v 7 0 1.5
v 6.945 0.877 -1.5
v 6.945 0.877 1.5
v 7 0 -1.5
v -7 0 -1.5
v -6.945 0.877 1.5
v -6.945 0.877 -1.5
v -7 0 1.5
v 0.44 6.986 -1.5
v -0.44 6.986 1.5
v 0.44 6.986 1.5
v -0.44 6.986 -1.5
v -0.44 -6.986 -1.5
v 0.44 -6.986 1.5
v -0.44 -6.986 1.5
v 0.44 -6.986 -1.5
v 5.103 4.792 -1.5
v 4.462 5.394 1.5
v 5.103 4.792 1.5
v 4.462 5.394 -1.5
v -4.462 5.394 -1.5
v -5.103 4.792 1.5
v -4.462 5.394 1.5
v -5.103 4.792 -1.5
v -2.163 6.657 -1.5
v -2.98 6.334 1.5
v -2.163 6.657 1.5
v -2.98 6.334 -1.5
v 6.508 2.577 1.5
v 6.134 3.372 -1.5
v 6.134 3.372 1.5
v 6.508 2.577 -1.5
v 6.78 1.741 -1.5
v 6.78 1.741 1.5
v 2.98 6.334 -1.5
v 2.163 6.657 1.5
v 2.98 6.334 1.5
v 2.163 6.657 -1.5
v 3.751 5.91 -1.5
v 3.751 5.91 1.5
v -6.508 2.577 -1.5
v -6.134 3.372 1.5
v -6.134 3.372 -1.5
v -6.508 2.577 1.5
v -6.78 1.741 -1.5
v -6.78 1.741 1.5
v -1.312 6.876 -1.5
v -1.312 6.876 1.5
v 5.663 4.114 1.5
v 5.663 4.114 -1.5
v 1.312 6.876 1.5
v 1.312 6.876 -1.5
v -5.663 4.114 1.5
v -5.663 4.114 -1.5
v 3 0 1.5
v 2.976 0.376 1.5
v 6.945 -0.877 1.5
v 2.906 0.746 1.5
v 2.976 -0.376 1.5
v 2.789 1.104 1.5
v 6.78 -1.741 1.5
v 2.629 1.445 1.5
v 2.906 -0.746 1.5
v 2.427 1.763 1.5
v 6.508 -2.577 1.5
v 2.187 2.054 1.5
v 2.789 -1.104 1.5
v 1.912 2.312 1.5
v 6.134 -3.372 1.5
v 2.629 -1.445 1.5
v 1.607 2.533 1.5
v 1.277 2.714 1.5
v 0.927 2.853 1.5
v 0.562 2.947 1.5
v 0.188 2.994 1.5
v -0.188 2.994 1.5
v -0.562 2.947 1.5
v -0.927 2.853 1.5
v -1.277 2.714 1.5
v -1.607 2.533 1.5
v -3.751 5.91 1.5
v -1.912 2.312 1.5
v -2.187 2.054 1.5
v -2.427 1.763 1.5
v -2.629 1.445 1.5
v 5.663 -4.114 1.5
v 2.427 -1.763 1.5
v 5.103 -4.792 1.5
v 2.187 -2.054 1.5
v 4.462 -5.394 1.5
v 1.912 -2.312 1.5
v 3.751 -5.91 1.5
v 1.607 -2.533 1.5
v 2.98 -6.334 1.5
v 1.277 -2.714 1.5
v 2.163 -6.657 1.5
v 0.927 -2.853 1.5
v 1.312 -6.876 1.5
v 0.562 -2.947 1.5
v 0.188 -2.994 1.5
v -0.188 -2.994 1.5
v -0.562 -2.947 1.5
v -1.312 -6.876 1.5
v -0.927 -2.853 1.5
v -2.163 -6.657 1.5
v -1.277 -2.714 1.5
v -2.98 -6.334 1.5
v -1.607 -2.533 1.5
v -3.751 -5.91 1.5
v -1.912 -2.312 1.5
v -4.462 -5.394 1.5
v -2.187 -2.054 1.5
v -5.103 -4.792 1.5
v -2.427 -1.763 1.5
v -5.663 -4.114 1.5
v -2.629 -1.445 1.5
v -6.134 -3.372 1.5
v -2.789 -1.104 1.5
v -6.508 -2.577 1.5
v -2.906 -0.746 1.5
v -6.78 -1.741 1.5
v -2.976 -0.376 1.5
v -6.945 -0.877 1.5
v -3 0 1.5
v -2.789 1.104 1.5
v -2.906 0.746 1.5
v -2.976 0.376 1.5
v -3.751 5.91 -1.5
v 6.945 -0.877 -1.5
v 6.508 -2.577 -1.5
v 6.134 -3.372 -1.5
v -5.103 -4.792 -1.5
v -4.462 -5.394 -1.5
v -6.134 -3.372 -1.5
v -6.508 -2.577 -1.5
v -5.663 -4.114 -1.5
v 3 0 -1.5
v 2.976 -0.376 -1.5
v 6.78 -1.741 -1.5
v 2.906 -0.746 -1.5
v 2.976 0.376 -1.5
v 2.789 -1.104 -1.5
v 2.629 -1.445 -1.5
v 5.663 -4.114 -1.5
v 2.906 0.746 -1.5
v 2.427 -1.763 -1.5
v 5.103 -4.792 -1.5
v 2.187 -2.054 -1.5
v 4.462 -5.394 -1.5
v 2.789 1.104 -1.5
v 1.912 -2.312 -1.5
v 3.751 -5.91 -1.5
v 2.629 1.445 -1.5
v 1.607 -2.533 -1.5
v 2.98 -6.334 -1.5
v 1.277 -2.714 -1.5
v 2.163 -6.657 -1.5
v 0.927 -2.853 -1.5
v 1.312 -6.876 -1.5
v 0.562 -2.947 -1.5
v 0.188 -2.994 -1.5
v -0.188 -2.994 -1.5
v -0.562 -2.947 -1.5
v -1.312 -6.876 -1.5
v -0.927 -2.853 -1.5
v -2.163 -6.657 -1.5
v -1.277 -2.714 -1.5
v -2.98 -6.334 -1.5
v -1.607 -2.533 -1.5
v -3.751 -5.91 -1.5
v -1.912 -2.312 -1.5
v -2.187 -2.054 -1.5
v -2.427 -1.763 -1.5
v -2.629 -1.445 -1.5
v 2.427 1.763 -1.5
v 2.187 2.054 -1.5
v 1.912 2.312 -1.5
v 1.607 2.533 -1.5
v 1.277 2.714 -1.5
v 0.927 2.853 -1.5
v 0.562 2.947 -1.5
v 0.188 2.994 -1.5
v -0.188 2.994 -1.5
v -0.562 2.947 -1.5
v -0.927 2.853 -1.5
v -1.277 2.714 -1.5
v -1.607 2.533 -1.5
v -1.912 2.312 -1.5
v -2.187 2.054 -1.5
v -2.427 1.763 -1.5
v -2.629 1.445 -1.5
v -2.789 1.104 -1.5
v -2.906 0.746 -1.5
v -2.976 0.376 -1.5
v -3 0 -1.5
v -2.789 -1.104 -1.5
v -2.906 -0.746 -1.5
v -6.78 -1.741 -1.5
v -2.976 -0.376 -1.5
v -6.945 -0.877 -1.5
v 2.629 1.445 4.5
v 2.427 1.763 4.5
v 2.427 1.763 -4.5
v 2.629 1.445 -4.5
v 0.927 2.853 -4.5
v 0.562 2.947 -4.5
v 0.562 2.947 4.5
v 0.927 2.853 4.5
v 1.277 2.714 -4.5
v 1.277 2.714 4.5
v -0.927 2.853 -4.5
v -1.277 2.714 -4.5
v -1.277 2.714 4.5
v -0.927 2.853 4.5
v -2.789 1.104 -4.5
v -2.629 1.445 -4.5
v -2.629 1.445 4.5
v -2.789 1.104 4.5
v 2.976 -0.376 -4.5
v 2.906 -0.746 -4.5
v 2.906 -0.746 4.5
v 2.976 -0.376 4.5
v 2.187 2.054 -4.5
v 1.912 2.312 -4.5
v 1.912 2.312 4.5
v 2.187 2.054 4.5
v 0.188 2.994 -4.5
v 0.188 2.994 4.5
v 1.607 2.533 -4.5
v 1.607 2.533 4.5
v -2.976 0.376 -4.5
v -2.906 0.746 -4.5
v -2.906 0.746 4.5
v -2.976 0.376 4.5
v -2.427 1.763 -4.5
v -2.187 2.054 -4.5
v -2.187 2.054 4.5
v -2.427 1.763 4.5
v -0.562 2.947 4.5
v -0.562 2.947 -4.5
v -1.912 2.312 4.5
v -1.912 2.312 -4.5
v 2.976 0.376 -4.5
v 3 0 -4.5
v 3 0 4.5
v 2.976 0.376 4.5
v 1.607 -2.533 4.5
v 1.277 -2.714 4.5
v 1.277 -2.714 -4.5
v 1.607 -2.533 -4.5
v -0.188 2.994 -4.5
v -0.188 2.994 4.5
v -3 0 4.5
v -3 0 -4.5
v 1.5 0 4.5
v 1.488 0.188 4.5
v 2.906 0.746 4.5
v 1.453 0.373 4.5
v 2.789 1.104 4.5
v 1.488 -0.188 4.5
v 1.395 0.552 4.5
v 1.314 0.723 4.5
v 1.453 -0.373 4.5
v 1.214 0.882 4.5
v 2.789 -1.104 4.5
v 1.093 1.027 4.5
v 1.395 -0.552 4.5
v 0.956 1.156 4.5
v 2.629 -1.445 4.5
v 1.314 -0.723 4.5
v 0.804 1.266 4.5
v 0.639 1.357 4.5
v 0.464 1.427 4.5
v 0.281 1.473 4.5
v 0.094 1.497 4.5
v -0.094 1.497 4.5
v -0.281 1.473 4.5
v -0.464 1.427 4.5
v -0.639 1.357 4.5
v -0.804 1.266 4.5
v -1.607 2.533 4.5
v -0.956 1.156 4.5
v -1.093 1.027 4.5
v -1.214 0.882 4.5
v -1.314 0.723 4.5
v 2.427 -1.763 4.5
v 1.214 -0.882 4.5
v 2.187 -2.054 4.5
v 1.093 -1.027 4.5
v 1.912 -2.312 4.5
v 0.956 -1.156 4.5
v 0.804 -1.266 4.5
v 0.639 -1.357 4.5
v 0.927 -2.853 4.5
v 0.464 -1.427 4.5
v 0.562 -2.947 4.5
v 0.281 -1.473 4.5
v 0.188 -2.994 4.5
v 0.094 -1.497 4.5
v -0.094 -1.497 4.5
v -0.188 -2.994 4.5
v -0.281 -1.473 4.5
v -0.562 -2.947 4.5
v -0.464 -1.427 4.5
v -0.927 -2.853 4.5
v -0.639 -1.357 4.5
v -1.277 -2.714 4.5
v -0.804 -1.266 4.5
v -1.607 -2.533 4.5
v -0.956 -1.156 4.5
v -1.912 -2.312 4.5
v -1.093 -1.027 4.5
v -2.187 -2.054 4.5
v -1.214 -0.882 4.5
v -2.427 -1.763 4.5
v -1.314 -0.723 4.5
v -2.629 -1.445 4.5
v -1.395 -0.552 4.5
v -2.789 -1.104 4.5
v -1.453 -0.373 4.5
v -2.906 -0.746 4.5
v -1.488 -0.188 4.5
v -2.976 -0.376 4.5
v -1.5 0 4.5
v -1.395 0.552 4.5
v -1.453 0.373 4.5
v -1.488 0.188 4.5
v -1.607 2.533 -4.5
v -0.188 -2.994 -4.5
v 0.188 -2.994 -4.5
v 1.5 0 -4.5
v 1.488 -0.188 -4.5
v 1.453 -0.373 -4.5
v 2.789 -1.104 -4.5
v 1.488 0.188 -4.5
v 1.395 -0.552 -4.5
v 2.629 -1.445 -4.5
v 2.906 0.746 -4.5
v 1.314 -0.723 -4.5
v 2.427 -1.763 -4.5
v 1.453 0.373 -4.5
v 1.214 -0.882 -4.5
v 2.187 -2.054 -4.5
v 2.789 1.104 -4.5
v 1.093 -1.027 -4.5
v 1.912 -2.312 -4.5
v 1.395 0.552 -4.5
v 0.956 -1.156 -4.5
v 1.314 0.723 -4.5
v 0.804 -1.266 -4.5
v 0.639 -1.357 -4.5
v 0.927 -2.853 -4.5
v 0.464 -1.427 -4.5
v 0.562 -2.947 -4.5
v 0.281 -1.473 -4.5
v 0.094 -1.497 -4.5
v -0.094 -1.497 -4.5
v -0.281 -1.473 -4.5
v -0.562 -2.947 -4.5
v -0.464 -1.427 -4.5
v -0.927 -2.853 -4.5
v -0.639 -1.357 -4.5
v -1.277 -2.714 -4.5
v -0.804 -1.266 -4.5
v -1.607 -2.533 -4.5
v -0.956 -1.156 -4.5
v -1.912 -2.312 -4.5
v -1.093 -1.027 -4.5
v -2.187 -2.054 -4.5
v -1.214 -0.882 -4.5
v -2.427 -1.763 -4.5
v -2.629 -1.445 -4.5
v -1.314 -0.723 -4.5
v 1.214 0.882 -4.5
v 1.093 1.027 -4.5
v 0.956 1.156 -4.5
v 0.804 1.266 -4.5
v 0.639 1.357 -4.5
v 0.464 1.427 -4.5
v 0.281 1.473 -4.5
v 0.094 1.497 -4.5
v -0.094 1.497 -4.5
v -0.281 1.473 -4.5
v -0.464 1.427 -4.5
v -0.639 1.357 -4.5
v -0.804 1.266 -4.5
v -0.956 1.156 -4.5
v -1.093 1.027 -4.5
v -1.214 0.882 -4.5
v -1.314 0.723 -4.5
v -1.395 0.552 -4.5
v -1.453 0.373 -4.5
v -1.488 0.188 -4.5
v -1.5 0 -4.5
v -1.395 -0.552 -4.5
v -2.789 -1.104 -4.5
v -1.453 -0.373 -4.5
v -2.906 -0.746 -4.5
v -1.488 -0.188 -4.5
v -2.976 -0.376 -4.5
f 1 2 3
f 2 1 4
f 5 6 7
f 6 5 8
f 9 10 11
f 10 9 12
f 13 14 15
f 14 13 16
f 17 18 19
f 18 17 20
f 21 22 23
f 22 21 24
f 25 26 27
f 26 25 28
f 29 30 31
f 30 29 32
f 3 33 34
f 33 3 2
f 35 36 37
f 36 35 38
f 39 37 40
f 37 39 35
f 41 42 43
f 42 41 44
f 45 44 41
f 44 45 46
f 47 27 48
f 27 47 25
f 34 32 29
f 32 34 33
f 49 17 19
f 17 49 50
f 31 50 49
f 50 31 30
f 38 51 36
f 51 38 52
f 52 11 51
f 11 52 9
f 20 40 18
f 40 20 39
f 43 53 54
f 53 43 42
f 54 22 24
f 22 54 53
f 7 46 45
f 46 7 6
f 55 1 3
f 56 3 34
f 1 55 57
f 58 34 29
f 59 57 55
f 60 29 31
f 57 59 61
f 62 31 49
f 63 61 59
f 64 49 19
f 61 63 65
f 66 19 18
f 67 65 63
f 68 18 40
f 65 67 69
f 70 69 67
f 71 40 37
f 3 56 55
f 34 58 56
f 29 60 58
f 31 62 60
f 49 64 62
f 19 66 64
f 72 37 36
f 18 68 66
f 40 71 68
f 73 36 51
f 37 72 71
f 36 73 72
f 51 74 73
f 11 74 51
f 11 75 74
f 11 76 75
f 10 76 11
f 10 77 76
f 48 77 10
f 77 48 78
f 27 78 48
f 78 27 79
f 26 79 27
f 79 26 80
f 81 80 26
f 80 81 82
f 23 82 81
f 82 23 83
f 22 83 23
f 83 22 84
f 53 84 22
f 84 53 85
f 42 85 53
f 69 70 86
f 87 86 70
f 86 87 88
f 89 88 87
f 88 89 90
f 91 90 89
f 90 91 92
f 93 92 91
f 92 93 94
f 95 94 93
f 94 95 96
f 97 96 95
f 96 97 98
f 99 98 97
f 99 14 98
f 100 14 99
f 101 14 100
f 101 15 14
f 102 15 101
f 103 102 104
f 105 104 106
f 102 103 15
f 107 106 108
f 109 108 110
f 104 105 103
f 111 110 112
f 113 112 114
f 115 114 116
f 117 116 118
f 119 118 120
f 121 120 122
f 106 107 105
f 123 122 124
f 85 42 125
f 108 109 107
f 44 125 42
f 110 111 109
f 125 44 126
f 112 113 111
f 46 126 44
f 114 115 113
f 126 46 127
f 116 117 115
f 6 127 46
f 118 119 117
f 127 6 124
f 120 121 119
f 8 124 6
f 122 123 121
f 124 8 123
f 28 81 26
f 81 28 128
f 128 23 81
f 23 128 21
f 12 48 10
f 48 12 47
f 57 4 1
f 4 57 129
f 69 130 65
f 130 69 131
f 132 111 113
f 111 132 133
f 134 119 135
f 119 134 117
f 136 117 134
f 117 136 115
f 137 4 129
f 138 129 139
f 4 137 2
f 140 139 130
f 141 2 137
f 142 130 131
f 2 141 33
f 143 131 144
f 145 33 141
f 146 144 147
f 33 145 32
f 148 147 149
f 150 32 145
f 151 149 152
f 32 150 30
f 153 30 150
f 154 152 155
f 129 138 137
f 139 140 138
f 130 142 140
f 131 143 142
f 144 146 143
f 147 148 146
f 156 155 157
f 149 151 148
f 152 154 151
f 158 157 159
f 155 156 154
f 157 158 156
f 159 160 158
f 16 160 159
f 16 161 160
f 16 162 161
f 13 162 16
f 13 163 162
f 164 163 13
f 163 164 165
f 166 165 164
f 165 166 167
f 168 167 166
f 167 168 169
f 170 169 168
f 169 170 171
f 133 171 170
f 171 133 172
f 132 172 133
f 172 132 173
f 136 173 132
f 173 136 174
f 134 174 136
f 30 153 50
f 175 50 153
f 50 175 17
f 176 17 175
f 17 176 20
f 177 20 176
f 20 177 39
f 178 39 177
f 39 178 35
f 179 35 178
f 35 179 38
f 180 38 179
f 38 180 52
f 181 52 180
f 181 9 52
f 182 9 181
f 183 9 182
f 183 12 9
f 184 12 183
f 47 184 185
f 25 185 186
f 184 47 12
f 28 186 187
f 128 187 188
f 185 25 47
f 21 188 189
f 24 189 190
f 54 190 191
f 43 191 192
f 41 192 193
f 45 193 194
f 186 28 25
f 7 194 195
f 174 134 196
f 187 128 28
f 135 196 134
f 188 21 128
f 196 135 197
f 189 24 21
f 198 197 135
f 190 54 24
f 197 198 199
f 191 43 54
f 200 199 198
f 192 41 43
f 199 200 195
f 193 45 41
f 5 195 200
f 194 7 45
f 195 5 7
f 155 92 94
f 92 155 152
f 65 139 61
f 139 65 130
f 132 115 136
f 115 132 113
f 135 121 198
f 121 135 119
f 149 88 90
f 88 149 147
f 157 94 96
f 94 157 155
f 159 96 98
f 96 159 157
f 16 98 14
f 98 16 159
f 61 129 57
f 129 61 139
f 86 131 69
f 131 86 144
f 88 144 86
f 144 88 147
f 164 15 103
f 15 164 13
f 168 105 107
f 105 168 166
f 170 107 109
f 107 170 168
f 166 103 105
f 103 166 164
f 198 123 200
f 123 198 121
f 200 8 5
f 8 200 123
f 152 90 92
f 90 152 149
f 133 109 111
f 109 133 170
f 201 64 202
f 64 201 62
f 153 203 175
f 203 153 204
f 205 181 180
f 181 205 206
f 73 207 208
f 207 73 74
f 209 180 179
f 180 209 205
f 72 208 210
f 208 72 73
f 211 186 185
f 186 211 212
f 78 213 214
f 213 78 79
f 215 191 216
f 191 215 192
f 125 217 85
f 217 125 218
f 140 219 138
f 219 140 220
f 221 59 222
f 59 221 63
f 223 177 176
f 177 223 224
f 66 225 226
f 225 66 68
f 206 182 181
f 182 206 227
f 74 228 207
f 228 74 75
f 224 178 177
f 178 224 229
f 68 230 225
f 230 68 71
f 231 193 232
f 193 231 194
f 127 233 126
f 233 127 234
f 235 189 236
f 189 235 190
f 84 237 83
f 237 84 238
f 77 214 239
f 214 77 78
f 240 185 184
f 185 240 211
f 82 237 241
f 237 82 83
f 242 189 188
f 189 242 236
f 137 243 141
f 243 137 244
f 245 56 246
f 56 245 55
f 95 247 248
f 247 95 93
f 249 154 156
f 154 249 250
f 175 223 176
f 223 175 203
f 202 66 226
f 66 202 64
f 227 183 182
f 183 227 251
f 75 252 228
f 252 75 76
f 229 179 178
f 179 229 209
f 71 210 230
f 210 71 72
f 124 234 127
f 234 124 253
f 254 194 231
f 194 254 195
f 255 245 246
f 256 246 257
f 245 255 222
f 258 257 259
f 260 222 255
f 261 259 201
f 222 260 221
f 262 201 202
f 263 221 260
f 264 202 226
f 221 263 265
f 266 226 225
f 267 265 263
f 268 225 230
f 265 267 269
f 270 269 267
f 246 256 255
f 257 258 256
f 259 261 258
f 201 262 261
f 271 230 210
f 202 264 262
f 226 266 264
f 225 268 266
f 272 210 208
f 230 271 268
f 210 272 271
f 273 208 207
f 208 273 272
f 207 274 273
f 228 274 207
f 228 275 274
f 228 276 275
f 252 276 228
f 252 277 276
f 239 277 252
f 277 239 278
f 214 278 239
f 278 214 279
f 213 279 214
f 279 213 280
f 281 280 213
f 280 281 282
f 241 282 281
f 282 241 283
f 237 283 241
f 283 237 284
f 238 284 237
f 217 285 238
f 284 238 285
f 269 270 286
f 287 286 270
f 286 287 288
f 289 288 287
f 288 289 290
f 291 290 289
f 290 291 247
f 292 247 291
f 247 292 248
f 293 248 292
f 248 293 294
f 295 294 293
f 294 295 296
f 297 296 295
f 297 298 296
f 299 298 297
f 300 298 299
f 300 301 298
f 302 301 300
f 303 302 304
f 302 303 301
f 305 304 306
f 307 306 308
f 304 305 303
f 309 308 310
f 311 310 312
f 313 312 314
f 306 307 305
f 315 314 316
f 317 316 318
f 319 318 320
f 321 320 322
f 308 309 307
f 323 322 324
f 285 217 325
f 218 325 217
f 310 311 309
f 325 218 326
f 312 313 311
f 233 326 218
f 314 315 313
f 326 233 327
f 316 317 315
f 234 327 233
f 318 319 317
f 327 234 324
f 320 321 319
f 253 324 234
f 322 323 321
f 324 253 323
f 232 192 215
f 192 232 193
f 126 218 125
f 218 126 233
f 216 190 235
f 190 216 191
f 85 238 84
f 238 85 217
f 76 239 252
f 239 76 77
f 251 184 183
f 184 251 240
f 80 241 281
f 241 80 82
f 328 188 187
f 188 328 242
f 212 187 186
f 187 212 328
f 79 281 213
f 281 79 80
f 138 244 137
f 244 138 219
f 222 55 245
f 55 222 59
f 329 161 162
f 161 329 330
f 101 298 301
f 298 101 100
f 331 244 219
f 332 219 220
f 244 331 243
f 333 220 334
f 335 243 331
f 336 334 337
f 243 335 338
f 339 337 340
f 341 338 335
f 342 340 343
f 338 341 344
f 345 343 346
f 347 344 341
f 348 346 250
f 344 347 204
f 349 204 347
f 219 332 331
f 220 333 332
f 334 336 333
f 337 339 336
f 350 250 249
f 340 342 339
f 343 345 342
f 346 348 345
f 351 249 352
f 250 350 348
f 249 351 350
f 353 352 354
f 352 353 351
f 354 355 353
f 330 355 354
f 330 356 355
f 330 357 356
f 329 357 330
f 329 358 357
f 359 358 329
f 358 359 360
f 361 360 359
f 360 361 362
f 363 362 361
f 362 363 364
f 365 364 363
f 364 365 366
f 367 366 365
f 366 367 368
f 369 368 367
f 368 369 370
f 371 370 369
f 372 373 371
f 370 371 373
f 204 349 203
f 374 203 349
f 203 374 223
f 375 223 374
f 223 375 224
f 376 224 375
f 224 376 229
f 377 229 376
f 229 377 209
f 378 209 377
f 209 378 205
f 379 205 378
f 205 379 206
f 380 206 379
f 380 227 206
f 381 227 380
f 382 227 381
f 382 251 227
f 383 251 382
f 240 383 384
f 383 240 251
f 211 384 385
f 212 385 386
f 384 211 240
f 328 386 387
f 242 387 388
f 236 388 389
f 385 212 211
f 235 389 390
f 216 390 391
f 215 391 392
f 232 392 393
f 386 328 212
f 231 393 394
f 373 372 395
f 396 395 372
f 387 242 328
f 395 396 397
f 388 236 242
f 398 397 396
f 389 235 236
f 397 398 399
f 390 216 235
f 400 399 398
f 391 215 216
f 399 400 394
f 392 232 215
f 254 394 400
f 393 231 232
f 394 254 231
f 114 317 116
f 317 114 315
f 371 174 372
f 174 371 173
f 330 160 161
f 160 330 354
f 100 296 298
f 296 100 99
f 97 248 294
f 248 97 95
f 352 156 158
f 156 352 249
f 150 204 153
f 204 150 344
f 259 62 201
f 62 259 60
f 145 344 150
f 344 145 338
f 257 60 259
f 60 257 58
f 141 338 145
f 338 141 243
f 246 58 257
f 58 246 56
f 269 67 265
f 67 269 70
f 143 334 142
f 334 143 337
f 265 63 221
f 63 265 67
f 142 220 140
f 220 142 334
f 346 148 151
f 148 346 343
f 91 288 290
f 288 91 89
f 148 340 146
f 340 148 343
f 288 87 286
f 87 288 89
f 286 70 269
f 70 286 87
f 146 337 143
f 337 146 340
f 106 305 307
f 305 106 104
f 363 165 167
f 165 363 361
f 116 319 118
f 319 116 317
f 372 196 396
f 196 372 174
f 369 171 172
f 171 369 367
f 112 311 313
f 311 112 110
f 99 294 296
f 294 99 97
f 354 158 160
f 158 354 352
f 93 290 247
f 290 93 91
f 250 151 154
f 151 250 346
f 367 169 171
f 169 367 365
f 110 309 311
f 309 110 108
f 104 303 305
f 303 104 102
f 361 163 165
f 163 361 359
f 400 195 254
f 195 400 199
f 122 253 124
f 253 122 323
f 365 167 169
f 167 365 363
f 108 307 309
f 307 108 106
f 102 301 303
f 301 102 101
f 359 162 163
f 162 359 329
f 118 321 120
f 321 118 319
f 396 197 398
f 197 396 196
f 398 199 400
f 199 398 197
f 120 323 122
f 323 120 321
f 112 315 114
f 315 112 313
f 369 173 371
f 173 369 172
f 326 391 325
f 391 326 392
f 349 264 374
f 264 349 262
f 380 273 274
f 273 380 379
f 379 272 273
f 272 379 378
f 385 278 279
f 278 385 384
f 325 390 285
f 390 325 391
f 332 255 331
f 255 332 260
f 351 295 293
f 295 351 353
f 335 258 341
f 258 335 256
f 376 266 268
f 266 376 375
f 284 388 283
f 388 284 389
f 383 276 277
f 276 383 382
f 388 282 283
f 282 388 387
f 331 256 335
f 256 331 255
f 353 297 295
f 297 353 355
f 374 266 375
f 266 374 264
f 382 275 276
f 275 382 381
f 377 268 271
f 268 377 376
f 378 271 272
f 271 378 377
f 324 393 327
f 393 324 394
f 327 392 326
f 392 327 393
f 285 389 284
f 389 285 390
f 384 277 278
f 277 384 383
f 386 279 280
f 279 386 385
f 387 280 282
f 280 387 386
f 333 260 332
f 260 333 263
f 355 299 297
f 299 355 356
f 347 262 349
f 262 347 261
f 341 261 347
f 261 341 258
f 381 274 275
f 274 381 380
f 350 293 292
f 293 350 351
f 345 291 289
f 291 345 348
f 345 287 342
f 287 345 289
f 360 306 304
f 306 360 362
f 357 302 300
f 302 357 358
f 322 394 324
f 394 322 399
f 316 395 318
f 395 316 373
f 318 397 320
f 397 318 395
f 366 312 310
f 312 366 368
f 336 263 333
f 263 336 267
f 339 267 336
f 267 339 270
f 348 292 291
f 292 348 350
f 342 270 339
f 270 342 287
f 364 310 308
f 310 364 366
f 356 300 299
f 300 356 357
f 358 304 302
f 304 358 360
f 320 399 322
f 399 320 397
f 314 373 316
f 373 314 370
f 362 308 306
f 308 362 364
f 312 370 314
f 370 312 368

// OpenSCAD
$fn = 50;


difference() {
	union() {
		translate(v = [0, 0, -1.5000000000]) {
			rotate(a = [0, 0, 0]) {
				cylinder(h = 3, r = 7.0000000000);
			}
		}
		translate(v = [0, 0, -4.5000000000]) {
			rotate(a = [0, 0, 0]) {
				cylinder(h = 9, r = 3.0000000000);
			}
		}
	}
	union() {
		translate(v = [0, 0, -125.0000000000]) {
			rotate(a = [0, 0, 0]) {
				cylinder(h = 250, r = 1.5000000000);
			}
		}
	}
}
